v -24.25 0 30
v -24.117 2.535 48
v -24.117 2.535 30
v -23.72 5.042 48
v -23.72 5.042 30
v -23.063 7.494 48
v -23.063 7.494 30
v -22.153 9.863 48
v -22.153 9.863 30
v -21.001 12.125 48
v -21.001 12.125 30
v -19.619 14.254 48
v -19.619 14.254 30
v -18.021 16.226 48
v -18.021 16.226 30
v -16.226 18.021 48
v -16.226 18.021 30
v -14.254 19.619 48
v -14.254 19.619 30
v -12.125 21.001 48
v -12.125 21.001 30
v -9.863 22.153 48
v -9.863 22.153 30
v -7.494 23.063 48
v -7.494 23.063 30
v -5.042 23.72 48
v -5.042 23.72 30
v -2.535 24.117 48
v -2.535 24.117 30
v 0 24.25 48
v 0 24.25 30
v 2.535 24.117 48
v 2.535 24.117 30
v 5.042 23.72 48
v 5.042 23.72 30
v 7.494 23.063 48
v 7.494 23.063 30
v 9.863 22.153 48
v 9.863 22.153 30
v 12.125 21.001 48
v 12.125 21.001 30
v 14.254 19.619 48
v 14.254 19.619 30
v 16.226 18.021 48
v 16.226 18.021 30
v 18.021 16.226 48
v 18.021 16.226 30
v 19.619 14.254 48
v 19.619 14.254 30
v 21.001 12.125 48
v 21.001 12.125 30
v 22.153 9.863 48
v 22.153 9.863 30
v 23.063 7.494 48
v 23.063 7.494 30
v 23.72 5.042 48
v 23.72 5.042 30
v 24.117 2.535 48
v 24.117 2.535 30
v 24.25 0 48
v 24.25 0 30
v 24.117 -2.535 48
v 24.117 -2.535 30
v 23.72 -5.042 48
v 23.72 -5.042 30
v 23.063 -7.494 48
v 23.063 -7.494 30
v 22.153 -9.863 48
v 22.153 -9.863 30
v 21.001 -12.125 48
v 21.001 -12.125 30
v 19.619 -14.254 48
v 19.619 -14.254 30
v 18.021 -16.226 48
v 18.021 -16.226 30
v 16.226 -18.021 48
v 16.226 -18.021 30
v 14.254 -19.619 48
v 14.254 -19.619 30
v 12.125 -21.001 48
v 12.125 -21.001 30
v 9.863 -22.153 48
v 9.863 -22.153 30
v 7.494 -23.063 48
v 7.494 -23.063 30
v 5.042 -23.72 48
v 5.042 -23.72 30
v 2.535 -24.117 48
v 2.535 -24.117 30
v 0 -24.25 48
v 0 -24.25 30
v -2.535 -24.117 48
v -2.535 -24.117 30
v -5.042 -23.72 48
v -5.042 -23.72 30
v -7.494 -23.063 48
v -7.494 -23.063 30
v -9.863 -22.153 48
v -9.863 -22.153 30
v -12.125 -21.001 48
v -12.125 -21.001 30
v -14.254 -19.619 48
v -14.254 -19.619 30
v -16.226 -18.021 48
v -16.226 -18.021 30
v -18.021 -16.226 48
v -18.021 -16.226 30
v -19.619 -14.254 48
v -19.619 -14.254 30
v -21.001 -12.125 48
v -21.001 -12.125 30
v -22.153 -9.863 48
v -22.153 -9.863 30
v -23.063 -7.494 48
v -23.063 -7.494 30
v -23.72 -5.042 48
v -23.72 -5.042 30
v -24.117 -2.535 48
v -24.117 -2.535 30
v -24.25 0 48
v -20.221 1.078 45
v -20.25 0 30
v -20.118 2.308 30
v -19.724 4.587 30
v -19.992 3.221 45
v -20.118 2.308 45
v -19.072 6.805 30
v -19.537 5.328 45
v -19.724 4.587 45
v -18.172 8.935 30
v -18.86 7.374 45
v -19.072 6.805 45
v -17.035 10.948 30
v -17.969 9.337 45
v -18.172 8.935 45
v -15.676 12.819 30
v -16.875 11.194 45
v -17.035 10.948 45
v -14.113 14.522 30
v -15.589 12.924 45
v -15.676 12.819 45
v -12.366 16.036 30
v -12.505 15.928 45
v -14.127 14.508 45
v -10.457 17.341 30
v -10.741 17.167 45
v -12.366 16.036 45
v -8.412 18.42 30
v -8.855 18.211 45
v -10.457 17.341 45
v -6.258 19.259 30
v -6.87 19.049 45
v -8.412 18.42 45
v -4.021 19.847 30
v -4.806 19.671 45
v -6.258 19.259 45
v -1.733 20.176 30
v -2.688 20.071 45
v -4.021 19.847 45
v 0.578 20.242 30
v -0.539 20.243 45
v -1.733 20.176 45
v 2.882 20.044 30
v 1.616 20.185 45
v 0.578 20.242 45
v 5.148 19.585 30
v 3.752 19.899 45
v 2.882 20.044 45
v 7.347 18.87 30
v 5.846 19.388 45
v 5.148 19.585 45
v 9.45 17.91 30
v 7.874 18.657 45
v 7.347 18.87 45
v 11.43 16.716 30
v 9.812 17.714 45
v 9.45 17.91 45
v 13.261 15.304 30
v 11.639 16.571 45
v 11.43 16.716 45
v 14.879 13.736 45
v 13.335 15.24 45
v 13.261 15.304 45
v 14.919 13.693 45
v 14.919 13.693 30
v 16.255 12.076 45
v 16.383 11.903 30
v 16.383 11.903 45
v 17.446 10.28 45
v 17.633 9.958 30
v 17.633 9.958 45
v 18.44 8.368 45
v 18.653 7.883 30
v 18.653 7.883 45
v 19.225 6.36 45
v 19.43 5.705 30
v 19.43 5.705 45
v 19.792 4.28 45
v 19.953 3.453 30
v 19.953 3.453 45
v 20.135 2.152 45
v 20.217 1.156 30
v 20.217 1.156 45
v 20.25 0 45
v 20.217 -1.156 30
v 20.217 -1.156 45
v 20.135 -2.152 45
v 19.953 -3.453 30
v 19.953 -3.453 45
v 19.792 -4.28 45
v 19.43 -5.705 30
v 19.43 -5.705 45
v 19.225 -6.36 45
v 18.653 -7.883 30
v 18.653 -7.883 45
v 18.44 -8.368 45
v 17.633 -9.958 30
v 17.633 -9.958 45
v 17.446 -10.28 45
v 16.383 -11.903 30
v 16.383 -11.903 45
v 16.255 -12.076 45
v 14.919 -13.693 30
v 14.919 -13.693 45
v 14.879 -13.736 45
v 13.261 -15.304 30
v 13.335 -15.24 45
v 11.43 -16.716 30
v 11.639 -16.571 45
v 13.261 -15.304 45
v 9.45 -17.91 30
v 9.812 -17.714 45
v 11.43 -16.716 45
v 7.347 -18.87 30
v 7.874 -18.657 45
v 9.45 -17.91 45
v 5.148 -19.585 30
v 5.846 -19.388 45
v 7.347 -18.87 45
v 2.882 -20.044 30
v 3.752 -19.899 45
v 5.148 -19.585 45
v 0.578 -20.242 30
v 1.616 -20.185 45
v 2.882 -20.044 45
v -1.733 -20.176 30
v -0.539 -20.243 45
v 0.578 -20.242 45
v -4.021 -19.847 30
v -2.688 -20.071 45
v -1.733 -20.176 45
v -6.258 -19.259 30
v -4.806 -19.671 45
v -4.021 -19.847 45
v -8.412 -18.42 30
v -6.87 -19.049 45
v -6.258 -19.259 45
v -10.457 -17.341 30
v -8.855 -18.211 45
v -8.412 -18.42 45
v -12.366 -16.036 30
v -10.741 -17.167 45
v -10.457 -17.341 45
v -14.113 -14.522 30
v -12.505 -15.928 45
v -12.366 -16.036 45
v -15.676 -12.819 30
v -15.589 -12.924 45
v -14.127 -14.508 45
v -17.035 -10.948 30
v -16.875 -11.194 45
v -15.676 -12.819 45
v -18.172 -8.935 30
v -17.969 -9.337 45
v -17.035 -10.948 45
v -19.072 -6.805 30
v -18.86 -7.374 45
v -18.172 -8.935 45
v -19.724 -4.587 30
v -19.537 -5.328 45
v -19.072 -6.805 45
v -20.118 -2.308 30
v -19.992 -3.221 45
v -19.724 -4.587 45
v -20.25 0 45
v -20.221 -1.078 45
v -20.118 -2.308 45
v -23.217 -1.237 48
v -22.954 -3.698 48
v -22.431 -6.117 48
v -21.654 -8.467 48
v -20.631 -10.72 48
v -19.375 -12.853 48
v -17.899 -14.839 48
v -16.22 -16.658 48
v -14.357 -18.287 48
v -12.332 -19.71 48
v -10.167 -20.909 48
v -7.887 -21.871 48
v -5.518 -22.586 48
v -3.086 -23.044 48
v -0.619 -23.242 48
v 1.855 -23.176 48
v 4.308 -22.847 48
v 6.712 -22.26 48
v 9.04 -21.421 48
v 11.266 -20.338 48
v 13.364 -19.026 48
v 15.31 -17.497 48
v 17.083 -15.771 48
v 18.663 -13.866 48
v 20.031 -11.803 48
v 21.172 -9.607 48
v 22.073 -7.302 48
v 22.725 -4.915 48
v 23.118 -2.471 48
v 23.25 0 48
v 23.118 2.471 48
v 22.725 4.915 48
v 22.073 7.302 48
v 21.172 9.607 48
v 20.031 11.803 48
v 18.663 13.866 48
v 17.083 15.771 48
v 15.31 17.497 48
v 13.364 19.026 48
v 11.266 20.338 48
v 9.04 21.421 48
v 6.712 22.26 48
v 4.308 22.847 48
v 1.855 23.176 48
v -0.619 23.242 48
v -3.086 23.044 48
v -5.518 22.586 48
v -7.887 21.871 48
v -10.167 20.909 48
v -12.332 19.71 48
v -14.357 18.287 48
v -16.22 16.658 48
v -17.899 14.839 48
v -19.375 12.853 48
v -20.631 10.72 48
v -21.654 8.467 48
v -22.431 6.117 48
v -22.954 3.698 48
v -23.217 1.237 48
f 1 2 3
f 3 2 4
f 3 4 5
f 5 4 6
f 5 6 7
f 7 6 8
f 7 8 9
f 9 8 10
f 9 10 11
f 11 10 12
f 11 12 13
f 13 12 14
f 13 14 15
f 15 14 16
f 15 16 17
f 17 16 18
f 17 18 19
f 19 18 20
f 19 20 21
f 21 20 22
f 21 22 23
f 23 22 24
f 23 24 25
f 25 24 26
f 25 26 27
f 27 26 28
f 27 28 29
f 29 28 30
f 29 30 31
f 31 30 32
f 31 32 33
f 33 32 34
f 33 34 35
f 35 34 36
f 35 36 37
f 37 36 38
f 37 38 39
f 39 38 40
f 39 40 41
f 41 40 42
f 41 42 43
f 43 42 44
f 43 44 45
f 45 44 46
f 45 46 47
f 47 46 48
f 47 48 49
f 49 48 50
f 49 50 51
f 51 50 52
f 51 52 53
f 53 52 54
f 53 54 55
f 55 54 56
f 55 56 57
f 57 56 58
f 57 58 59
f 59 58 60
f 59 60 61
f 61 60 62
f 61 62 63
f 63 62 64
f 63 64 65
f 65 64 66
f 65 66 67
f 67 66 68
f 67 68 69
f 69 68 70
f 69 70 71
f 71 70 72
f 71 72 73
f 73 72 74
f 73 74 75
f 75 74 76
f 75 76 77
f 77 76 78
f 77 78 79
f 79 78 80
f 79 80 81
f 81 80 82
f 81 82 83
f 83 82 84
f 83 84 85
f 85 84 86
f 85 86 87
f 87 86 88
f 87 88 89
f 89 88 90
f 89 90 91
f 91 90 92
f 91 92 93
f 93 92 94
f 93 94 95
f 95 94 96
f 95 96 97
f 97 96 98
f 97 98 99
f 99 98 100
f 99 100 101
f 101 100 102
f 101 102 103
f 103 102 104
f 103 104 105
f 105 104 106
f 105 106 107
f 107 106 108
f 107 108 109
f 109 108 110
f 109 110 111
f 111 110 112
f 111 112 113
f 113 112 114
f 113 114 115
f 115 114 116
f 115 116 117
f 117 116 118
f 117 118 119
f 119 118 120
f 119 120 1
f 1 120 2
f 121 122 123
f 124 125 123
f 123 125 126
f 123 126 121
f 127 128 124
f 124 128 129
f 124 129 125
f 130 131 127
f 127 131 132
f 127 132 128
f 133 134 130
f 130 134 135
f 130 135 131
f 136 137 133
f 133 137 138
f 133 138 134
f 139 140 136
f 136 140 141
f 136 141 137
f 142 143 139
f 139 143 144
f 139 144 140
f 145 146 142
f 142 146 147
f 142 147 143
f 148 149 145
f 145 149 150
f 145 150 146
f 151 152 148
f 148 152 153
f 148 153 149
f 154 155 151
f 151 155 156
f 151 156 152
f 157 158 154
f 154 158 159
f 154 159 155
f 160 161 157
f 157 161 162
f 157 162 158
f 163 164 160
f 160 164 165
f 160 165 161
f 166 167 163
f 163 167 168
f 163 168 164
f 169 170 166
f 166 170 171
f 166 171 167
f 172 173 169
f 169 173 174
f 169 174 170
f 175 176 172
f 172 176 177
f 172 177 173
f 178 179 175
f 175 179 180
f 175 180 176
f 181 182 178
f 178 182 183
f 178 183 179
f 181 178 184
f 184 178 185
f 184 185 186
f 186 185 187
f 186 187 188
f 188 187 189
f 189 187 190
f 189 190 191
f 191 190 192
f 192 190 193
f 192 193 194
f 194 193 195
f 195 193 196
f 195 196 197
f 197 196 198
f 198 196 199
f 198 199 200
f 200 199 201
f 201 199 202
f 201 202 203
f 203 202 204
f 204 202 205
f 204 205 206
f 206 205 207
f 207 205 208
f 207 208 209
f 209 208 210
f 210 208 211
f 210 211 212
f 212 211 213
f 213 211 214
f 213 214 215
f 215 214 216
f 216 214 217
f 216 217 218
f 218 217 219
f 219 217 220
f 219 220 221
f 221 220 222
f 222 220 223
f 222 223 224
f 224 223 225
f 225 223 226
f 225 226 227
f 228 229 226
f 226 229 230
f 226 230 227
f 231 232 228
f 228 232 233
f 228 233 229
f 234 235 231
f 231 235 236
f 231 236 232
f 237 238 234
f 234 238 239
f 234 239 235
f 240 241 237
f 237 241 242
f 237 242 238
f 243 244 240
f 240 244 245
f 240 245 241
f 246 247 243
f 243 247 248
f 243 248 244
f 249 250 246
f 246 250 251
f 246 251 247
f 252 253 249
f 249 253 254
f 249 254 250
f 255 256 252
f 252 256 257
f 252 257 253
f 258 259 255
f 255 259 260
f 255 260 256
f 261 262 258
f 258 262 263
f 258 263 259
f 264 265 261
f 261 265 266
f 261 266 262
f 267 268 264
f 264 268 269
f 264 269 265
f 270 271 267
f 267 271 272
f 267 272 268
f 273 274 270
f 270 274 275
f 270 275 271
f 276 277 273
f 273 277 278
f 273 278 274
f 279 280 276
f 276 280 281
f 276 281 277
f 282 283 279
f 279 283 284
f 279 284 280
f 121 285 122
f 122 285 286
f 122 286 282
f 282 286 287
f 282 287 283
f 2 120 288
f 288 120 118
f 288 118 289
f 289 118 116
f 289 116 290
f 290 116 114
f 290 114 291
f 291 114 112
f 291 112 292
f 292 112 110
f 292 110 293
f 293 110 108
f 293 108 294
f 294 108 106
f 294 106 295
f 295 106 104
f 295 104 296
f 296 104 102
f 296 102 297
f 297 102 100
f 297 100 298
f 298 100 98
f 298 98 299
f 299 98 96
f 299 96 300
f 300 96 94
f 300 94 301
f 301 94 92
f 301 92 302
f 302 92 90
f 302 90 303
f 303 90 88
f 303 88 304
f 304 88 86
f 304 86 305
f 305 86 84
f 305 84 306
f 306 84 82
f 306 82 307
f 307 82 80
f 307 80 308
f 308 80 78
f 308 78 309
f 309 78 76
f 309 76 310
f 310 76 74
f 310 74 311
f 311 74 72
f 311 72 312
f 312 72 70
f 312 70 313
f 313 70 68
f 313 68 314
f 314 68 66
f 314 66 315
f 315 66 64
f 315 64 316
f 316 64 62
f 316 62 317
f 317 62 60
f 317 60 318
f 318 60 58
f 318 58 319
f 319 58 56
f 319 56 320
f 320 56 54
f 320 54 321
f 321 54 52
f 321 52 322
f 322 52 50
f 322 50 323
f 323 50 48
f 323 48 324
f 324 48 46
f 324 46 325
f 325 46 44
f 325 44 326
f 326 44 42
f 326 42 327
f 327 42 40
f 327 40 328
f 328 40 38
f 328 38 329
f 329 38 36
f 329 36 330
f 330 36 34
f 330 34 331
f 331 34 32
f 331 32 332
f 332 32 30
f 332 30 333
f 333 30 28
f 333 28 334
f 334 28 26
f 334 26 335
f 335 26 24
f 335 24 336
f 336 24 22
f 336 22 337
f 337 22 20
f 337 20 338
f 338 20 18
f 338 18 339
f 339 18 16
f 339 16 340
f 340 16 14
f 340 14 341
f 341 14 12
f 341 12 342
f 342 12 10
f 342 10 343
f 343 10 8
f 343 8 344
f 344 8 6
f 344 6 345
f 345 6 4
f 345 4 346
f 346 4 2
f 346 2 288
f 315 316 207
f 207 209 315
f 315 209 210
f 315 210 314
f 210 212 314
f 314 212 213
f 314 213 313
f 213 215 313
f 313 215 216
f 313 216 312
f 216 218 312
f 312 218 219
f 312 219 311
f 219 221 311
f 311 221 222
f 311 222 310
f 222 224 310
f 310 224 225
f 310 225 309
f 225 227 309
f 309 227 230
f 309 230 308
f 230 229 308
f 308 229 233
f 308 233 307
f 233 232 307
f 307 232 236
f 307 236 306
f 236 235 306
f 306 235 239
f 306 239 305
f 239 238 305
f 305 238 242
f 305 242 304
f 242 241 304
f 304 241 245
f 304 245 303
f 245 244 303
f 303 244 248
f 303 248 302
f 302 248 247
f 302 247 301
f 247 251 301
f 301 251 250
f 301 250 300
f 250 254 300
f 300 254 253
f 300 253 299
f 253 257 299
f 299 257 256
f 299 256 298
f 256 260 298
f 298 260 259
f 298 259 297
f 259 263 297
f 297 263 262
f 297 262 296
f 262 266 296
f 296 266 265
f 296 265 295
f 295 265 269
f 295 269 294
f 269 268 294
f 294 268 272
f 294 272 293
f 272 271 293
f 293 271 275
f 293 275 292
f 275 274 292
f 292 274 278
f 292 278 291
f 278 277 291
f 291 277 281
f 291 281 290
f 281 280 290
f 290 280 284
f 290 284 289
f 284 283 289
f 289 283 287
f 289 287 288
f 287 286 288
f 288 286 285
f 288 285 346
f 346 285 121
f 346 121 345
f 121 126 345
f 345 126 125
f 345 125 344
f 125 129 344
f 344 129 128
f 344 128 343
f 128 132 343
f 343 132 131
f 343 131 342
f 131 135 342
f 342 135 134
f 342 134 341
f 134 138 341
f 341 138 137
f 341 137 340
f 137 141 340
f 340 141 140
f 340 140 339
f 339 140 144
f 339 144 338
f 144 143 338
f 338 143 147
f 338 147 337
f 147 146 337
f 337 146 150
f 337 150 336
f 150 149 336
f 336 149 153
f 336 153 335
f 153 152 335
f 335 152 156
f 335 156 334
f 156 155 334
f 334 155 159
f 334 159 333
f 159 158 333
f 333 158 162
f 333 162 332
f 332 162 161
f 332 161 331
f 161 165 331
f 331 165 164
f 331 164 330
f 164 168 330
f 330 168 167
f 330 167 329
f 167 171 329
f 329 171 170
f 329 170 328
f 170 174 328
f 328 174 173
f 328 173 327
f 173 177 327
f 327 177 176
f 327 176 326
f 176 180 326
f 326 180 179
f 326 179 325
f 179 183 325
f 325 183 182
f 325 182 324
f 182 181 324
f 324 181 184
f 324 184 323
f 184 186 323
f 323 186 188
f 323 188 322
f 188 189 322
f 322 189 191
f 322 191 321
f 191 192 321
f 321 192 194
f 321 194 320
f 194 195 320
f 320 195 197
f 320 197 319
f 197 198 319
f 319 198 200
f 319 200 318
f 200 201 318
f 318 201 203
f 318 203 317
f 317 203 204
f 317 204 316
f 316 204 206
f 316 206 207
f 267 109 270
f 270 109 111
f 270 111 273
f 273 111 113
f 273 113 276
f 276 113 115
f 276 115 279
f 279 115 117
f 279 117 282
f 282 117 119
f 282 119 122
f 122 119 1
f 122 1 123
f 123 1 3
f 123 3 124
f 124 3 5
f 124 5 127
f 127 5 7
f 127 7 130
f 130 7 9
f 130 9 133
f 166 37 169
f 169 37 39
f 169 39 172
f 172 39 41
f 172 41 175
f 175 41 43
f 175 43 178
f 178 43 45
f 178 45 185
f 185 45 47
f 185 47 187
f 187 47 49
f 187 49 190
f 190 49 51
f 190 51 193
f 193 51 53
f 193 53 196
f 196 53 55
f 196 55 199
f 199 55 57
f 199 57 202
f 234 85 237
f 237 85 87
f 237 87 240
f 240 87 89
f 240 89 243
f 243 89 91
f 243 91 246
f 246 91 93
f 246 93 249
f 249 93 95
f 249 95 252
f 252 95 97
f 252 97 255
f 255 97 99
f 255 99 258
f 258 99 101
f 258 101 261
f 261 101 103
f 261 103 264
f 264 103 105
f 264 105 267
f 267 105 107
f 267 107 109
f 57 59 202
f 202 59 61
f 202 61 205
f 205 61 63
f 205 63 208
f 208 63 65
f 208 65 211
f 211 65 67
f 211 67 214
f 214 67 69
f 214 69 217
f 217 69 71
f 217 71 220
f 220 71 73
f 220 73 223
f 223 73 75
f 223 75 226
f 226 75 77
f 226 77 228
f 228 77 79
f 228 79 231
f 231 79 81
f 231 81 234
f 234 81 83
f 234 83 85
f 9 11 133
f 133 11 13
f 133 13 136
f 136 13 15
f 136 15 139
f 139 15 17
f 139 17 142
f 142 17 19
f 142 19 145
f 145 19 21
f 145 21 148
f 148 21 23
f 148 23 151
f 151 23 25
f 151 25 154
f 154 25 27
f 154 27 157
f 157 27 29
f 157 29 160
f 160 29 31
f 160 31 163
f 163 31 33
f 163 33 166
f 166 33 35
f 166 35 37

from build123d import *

# Parameters (mm, degrees)
ESQUISSE1_R             = 24.25
ESQUISSE1_R_2           = 20.25
BOSS_EXTRU_1_DEPTH      = 48
CHANFREIN1_SIZE         = 3
ESQUISSE2_R             = 24.25
ENL_V_MAT_EXTRU_1_DEPTH = 30


with BuildPart() as part:
    # Esquisse1 → Boss.-Extru.1 (new body)
    with BuildSketch(Plane.XY):
        Circle(ESQUISSE1_R)
        Circle(ESQUISSE1_R_2, mode=Mode.SUBTRACT)
    extrude(amount=BOSS_EXTRU_1_DEPTH)

    # Chanfrein1
    chanfrein1_edges = [part.edges().sort_by_distance(p)[0] for p in [
        (-20.25, 0, 48),
    ]]
    chamfer(chanfrein1_edges, length=CHANFREIN1_SIZE)

    # Esquisse2 → Enlèv. mat.-Extru.1 (cut)
    with BuildSketch(Plane(origin=(0, 0, 0), x_dir=(-1, 0, 0), z_dir=(0, 0, -1))):
        Circle(ESQUISSE2_R)
    extrude(amount=-ENL_V_MAT_EXTRU_1_DEPTH, mode=Mode.SUBTRACT)


solid = part.part
